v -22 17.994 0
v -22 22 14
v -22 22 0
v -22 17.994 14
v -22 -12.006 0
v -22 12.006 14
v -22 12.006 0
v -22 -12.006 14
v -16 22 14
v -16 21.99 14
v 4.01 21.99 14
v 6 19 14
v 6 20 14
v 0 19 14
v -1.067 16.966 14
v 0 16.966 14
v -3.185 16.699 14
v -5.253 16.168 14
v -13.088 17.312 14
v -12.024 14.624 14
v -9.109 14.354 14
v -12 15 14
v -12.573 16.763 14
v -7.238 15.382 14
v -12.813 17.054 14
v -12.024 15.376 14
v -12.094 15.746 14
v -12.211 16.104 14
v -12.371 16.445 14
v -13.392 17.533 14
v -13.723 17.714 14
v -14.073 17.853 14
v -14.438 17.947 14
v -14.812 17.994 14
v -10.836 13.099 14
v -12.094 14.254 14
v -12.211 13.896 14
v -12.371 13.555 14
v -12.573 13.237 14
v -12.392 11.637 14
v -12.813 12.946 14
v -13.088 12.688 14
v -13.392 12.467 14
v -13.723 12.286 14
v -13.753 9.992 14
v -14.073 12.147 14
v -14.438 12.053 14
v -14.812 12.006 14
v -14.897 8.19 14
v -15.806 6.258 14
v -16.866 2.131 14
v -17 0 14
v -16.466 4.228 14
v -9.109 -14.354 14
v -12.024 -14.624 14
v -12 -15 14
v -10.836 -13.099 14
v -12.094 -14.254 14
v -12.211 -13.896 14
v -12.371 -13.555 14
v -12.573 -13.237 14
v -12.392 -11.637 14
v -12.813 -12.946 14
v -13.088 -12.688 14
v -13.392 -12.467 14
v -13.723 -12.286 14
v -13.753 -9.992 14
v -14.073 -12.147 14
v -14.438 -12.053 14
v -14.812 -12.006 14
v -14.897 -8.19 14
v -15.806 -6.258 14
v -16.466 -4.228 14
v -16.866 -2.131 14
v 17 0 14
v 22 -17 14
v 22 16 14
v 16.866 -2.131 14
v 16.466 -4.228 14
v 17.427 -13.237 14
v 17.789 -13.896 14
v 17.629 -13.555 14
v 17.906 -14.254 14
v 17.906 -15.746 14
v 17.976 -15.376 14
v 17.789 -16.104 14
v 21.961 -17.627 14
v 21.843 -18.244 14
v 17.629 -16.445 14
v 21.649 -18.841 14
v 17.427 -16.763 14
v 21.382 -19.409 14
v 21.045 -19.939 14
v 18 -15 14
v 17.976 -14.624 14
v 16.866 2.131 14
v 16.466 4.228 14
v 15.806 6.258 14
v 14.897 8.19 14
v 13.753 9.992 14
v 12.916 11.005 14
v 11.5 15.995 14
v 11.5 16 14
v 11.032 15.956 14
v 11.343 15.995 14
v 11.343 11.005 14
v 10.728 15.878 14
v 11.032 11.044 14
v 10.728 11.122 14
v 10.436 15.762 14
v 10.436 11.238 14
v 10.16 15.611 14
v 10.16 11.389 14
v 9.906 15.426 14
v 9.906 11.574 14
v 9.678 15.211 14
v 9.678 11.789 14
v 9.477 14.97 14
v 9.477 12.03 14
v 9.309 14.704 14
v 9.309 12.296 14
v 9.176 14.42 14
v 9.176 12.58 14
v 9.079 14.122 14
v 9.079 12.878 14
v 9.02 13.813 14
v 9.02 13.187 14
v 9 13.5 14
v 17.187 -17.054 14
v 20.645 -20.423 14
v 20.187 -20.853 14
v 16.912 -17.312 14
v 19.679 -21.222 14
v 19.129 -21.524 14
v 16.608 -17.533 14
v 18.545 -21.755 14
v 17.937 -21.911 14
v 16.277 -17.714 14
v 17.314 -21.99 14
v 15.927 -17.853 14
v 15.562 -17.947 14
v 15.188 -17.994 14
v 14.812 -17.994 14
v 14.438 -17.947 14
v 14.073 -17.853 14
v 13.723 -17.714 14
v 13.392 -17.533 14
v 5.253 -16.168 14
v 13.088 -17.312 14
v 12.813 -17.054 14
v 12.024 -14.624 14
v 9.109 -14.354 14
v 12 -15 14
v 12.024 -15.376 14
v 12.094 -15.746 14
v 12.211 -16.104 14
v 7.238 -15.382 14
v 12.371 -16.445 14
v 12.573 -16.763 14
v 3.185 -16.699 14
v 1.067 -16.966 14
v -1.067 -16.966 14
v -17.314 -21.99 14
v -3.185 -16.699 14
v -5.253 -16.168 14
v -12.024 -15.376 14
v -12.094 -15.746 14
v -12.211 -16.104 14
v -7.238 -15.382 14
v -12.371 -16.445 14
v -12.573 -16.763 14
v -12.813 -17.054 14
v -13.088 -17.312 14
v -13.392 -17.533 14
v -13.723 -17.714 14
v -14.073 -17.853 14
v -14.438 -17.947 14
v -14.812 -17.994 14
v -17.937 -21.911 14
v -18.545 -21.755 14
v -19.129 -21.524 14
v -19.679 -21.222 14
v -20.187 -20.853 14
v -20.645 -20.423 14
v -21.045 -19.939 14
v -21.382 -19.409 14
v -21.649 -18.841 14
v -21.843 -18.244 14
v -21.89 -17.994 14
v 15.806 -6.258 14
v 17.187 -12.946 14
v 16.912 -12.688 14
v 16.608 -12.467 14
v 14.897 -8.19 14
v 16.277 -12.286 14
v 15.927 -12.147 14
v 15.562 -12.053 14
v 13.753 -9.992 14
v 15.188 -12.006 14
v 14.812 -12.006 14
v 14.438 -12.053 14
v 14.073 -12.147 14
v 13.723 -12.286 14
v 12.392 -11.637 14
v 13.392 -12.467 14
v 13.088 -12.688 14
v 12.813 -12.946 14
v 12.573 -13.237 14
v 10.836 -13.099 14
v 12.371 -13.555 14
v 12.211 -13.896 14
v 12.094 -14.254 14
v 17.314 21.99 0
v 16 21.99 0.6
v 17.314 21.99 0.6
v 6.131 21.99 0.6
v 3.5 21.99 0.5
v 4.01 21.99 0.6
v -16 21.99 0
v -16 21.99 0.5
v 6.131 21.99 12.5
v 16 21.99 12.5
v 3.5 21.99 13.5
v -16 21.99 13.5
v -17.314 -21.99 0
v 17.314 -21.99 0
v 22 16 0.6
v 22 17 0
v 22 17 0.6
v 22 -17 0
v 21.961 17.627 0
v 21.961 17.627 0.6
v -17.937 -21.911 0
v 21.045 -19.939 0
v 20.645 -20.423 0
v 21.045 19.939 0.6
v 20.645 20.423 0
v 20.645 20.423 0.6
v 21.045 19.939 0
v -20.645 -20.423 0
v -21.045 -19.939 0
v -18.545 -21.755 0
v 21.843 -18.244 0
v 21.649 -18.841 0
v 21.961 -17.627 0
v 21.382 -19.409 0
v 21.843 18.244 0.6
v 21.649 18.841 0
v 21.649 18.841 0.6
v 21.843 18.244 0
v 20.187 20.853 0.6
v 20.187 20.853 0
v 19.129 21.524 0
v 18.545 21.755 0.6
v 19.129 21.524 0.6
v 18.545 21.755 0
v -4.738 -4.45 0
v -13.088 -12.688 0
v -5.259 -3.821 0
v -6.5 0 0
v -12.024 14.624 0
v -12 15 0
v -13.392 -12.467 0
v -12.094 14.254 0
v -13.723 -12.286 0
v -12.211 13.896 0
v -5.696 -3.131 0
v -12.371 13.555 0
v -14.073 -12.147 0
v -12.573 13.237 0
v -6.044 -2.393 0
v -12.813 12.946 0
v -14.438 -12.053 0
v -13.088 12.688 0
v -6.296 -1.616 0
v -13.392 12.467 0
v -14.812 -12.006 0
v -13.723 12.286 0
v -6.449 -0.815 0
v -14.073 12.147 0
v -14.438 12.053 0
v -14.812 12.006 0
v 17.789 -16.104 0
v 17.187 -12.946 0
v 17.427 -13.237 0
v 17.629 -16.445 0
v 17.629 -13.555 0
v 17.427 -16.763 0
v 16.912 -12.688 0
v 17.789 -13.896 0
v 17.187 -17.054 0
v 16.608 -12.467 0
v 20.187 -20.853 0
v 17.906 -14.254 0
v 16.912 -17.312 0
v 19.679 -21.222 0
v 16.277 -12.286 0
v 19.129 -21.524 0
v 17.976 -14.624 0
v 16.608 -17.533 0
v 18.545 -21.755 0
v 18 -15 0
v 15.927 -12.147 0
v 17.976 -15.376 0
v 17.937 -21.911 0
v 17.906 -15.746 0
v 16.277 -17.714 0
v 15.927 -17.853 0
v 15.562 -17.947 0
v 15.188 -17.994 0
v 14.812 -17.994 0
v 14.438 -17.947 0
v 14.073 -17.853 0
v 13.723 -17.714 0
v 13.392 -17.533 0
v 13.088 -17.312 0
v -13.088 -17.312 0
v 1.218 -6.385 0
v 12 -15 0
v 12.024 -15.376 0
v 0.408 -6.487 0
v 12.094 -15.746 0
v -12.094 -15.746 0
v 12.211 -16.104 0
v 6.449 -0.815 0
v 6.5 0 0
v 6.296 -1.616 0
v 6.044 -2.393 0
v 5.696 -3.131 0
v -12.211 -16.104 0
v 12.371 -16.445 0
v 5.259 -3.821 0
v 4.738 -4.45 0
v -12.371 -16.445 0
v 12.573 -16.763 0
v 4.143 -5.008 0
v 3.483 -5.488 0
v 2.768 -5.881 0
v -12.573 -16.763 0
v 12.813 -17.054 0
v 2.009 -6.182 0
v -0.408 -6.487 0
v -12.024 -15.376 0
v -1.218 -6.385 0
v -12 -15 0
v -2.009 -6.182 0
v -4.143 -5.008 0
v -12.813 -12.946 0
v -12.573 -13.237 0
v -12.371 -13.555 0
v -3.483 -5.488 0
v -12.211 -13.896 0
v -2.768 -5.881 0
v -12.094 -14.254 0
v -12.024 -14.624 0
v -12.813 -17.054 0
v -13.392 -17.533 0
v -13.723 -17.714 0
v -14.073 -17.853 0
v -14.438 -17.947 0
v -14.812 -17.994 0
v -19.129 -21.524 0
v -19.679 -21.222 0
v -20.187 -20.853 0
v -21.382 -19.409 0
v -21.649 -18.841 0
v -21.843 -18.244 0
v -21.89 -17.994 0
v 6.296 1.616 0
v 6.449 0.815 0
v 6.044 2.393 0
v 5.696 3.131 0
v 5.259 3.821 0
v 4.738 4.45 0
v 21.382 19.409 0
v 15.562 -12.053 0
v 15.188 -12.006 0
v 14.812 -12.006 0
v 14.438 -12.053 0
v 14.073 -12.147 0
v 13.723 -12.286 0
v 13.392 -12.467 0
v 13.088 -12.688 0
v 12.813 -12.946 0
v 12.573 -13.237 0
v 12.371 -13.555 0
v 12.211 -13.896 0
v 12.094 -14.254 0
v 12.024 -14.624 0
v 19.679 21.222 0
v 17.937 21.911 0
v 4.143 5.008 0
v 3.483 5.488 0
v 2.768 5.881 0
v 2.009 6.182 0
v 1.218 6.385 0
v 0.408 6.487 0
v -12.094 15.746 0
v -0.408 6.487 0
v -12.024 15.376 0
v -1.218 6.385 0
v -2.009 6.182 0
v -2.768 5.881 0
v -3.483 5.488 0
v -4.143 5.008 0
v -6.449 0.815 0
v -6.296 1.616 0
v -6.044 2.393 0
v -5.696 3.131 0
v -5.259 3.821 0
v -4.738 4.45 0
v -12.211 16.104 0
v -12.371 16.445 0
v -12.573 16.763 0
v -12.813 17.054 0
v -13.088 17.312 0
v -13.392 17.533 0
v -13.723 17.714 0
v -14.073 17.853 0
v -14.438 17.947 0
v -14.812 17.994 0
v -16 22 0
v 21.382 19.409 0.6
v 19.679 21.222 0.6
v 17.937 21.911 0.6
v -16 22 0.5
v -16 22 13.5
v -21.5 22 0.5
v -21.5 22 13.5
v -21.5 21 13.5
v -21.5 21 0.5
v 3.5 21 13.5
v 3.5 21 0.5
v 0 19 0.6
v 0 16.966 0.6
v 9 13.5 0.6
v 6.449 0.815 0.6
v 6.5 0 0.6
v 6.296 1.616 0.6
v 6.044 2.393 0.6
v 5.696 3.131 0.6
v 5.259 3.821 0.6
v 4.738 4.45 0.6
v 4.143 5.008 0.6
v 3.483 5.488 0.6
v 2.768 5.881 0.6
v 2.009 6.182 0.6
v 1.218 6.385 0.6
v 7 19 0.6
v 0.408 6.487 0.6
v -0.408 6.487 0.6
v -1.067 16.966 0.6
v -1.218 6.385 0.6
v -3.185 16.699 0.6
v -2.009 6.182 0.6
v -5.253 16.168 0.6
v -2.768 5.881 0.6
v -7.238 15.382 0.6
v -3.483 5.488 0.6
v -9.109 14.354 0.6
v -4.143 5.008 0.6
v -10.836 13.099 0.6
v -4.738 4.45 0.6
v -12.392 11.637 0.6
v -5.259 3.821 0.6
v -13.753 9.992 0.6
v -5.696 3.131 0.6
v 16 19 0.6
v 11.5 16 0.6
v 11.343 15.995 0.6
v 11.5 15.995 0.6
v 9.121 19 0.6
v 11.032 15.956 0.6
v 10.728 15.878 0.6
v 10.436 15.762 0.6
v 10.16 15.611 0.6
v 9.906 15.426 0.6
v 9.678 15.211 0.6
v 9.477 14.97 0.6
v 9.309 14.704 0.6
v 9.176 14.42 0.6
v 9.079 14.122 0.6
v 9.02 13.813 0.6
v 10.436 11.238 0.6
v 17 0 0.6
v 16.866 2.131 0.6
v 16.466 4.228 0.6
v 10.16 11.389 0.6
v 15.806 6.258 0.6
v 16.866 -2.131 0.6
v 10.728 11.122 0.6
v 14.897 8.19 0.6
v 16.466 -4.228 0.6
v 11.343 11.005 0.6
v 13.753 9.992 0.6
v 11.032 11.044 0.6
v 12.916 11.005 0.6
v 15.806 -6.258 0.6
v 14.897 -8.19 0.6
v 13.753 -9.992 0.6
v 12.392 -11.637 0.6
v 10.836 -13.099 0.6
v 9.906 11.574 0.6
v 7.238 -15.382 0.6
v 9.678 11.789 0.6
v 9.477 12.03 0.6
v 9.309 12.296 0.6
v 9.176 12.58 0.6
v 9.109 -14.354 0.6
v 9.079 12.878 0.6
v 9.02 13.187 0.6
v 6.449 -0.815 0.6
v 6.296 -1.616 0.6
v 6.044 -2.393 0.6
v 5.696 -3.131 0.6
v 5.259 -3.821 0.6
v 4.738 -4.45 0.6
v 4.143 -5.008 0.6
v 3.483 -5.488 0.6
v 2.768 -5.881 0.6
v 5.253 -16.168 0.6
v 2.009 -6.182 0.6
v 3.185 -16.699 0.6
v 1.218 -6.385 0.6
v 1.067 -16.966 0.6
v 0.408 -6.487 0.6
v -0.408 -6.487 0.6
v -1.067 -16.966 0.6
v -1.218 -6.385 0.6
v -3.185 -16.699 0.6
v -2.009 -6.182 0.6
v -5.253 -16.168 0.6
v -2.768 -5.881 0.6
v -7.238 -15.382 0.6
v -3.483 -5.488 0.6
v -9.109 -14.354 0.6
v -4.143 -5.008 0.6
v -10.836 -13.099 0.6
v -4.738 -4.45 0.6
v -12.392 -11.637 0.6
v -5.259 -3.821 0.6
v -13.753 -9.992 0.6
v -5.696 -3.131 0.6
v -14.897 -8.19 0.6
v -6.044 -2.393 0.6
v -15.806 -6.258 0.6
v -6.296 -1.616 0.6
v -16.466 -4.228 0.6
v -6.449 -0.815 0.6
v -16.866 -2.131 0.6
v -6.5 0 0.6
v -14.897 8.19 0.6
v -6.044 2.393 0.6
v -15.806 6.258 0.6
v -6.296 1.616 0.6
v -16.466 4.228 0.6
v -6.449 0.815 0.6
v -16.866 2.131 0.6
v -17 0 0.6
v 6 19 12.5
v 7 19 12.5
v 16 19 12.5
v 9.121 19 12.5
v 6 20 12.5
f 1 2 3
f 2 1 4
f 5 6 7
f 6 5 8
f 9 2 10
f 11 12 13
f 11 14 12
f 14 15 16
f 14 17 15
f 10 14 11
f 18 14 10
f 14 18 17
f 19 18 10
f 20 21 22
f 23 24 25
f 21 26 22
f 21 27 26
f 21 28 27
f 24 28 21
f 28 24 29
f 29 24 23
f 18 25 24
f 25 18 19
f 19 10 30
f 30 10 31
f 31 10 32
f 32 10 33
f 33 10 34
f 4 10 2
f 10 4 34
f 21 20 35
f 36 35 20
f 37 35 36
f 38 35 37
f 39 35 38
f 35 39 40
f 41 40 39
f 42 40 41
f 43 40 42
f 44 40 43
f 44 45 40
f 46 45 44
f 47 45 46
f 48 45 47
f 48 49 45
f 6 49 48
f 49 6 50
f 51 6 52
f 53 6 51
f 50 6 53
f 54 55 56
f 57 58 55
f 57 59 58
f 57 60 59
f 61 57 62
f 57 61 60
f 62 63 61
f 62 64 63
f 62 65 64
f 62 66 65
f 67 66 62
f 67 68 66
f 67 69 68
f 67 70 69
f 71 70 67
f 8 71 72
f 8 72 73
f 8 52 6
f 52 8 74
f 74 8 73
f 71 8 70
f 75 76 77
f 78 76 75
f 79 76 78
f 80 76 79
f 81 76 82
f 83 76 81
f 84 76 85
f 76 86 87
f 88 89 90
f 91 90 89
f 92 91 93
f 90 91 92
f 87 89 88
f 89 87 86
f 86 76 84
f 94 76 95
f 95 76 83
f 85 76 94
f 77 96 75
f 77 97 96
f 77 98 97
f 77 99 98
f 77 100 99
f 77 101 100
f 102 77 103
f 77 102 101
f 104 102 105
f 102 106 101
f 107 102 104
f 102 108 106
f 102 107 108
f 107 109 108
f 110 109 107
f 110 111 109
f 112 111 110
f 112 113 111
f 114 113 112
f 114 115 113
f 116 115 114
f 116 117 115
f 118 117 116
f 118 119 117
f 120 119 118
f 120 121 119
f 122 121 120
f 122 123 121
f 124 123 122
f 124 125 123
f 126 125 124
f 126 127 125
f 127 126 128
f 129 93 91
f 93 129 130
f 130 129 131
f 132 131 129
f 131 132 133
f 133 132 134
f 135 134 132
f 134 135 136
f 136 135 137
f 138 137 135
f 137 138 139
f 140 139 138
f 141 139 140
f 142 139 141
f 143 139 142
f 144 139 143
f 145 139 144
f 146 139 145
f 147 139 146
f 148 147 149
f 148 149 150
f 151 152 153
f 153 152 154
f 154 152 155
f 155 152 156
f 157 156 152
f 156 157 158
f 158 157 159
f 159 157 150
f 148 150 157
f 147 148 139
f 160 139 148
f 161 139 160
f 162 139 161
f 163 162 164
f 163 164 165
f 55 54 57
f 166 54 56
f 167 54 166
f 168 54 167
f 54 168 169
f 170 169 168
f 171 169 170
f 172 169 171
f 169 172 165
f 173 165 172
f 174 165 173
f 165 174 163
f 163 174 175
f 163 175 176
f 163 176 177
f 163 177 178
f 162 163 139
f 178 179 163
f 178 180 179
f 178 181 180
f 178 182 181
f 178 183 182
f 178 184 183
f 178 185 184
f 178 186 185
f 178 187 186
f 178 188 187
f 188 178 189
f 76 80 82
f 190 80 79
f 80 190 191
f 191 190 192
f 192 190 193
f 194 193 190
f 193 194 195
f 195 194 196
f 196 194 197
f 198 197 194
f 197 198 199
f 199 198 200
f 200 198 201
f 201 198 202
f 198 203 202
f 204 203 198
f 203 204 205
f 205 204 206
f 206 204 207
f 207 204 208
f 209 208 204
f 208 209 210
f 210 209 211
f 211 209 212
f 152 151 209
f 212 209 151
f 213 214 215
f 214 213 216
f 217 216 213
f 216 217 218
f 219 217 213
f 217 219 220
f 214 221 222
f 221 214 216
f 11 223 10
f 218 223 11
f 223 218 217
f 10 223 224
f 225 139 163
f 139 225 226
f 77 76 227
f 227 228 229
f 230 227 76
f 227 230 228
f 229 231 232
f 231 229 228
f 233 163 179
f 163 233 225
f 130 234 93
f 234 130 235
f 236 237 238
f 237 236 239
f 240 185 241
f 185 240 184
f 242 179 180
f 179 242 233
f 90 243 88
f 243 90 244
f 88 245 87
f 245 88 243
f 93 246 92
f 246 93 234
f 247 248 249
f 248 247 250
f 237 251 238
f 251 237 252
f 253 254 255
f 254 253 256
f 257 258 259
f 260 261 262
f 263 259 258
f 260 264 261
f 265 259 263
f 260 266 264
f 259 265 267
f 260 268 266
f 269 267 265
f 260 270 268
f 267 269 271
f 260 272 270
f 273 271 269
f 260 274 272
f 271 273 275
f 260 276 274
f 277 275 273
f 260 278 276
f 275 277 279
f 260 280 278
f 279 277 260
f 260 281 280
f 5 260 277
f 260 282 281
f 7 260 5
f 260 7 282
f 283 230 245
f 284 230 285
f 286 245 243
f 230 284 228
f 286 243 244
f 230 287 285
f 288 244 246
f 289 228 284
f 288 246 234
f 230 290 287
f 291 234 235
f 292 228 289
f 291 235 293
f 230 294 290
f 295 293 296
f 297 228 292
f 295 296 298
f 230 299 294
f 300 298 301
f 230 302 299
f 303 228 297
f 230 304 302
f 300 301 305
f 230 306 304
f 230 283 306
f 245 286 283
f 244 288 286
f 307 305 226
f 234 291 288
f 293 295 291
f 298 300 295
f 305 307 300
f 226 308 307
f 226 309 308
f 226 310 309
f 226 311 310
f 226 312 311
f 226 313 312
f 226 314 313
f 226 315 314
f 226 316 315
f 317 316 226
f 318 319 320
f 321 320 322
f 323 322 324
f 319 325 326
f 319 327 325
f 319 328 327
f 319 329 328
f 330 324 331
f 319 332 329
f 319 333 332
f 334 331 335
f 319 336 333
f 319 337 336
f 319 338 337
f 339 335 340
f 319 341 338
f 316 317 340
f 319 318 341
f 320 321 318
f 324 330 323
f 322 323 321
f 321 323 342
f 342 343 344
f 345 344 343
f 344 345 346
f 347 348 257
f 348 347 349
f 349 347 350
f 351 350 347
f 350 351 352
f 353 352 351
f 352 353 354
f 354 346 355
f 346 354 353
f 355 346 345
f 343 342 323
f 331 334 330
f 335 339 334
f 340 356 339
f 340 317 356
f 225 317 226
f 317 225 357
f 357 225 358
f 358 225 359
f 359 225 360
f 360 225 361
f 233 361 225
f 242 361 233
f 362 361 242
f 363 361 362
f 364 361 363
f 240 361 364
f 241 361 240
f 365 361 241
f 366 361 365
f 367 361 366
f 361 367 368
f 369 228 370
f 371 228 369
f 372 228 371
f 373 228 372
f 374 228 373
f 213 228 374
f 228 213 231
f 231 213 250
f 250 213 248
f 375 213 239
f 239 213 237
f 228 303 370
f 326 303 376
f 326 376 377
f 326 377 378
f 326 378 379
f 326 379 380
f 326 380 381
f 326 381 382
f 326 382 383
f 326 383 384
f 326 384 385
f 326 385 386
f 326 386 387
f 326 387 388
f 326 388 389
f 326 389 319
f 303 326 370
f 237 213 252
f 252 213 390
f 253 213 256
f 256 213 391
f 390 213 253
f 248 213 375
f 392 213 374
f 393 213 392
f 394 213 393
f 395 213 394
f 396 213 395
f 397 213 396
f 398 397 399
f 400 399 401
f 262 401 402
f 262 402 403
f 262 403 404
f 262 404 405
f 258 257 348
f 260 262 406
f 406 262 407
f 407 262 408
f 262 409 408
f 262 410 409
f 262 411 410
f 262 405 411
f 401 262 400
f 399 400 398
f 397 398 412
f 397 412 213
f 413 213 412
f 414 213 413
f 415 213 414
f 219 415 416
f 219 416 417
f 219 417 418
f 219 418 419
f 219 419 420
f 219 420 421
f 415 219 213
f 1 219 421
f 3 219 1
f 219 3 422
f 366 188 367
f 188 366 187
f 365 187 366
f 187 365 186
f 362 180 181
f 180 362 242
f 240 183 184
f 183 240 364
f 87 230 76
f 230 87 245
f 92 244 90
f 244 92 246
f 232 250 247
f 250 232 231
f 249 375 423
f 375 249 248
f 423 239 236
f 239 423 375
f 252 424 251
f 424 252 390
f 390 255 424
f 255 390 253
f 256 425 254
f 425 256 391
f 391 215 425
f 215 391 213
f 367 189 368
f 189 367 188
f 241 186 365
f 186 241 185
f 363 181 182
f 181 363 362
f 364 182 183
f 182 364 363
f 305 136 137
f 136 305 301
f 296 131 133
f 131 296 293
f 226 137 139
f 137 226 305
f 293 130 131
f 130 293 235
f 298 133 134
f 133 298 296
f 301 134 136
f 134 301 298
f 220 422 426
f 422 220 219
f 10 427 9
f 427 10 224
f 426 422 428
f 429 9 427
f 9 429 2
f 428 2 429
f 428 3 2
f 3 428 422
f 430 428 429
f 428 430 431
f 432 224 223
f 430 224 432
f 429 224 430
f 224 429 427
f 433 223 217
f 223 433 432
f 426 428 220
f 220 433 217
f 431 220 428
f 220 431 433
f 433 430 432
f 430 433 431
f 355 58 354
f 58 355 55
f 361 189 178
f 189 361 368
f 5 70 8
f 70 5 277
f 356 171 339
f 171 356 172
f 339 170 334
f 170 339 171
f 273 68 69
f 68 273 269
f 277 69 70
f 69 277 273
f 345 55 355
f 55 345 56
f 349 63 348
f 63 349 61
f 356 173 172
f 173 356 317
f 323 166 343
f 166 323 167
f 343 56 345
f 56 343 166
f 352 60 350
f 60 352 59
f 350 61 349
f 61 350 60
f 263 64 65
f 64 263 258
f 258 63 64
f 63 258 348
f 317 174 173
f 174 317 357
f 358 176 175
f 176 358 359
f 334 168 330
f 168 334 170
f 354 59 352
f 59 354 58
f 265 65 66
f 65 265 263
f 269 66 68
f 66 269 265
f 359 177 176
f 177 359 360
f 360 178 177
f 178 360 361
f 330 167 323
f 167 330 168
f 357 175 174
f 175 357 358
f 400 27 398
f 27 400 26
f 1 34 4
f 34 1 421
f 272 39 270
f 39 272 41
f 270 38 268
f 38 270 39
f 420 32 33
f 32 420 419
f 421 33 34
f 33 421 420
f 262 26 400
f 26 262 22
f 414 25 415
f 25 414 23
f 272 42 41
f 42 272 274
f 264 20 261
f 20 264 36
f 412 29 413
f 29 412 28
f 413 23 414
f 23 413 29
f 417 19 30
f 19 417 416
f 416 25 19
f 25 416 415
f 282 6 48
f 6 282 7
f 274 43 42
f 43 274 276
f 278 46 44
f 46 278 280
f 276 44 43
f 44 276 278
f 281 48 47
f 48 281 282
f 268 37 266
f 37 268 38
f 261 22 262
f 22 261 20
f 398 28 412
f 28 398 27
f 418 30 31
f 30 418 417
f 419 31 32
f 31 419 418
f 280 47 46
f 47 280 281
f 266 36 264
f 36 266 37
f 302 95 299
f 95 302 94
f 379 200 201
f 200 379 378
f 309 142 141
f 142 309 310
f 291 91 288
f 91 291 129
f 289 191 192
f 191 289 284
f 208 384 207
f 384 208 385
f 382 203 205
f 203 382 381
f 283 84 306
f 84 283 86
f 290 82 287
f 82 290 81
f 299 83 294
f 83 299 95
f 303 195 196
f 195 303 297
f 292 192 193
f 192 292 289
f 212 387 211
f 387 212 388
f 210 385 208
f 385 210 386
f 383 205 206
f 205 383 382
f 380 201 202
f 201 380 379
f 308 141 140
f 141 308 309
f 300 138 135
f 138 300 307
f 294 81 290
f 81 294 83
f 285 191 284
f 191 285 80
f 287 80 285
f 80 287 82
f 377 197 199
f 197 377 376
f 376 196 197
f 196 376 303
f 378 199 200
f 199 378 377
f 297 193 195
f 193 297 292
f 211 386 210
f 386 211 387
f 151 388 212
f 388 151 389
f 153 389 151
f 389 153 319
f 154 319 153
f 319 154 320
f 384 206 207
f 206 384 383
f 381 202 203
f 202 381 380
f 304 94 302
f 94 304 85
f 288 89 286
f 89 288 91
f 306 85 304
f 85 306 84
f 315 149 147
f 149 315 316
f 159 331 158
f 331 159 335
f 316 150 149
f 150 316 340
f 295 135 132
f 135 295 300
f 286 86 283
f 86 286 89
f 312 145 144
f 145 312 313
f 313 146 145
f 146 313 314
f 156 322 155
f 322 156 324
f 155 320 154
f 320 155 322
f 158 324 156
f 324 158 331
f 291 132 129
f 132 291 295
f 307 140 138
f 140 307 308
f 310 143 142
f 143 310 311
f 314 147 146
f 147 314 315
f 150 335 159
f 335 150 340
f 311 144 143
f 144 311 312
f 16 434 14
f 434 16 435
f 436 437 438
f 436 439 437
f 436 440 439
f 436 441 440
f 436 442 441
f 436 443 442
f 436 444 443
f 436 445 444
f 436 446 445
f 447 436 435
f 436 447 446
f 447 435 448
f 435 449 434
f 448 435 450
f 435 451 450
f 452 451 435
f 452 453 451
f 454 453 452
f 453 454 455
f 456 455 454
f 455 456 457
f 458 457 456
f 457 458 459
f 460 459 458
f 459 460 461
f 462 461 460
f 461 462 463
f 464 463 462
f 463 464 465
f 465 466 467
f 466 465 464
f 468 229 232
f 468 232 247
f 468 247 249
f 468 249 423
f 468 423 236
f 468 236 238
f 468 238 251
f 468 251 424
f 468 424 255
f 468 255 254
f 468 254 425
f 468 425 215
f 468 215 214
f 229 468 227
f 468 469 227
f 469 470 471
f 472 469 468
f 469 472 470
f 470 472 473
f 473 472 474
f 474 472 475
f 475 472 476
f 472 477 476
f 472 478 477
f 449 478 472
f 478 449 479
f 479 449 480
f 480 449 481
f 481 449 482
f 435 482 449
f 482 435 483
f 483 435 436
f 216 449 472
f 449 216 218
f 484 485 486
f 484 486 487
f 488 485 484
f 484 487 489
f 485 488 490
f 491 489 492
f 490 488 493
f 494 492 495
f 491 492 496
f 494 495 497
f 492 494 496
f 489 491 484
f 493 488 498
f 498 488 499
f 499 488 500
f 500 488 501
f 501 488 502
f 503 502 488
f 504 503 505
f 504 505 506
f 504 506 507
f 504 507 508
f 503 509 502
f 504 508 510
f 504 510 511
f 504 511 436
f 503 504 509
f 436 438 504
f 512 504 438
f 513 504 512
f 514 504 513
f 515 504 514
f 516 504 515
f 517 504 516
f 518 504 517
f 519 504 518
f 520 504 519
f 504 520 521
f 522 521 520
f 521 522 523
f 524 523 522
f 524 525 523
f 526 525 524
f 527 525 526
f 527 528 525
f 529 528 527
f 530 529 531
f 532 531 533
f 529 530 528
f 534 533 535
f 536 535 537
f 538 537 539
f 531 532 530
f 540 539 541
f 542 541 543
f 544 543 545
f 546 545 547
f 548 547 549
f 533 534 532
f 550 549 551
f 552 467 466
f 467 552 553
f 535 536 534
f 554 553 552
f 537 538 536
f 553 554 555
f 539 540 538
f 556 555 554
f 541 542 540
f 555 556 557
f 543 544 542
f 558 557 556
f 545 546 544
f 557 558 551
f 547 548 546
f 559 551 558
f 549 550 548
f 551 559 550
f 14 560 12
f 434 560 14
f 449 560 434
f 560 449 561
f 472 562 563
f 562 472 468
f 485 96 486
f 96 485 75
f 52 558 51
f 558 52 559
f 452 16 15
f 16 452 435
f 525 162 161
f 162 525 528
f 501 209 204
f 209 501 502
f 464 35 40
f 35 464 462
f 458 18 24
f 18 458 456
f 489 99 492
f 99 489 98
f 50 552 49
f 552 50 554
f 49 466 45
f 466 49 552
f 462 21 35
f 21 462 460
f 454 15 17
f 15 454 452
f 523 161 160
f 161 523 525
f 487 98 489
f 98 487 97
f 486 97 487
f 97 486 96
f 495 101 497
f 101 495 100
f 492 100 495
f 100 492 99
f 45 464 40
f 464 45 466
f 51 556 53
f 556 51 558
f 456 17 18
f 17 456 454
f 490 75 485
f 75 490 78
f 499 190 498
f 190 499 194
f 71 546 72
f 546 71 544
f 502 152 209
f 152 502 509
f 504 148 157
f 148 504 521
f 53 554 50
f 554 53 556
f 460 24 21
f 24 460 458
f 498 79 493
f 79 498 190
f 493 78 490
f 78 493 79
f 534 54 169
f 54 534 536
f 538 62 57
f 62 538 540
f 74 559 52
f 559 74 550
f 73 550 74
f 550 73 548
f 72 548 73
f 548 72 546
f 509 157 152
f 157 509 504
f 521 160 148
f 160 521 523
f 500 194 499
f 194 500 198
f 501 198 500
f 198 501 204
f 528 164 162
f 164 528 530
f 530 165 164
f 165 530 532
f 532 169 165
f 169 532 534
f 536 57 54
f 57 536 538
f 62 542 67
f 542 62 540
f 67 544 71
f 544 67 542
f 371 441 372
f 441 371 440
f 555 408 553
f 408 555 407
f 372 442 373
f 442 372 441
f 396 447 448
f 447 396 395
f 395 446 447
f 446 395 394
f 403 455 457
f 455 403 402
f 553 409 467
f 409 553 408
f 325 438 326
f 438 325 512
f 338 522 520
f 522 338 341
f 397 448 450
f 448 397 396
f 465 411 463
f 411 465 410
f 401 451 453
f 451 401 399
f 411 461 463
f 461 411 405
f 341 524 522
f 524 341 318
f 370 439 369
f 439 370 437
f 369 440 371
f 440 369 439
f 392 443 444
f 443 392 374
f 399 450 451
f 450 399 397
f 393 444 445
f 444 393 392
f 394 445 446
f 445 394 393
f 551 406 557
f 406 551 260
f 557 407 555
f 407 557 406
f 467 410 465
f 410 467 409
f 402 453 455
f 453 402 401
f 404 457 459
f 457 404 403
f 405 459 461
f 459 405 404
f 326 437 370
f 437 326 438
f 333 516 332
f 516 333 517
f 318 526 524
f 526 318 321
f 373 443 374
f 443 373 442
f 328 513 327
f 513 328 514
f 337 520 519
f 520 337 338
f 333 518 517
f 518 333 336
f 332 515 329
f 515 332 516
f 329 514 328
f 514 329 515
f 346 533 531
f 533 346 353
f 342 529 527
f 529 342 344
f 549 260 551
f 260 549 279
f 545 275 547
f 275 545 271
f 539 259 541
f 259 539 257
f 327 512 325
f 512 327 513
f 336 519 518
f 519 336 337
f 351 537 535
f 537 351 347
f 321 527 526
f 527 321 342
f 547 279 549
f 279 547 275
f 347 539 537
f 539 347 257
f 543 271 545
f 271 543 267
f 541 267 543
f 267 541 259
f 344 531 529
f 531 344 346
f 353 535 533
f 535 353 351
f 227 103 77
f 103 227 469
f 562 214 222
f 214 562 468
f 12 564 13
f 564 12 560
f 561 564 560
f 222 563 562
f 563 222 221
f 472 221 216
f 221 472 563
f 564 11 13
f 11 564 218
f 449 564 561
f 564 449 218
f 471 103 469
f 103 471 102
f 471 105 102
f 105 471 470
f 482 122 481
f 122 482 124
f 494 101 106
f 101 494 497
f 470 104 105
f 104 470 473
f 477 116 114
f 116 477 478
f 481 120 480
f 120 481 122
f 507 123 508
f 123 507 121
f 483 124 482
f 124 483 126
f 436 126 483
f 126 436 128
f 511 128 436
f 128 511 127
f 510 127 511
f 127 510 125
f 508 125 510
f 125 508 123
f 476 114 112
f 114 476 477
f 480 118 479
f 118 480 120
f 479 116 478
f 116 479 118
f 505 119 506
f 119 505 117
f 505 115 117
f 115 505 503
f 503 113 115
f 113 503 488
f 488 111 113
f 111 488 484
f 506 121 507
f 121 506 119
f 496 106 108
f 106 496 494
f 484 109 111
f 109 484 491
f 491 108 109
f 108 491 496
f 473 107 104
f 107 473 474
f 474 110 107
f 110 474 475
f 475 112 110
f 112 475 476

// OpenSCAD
$fn = 50;


union() {
	difference() {
		union() {
			translate(v = [0, 0, 0]) {
				rotate(a = [0, 0, 0]) {
					hull() {
						translate(v = [-17.0000000000, 17.0000000000, 0]) {
							rotate(a = [0, 0, 0]) {
								translate(v = [0, 0, 0]) {
									rotate(a = [0, 0, 0]) {
										cylinder(h = 14, r = 5);
									}
								}
							}
						}
						translate(v = [17.0000000000, 17.0000000000, 0]) {
							rotate(a = [0, 0, 0]) {
								translate(v = [0, 0, 0]) {
									rotate(a = [0, 0, 0]) {
										cylinder(h = 14, r = 5);
									}
								}
							}
						}
						translate(v = [-17.0000000000, -17.0000000000, 0]) {
							rotate(a = [0, 0, 0]) {
								translate(v = [0, 0, 0]) {
									rotate(a = [0, 0, 0]) {
										cylinder(h = 14, r = 5);
									}
								}
							}
						}
						translate(v = [17.0000000000, -17.0000000000, 0]) {
							rotate(a = [0, 0, 0]) {
								translate(v = [0, 0, 0]) {
									rotate(a = [0, 0, 0]) {
										cylinder(h = 14, r = 5);
									}
								}
							}
						}
					}
				}
			}
			translate(v = [-22.0000000000, 16.0000000000, 0]) {
				rotate(a = [0, 0, 0]) {
					cube(size = [6, 6, 14]);
				}
			}
		}
		union() {
			#translate(v = [-21.5000000000, 21.0000000000, 0.5000000000]) {
				rotate(a = [0, 0, 0]) {
					cube(size = [25, 1, 13.0000000000]);
				}
			}
			translate(v = [-22.5000000000, -15.0000000000, -125]) {
				rotate(a = [0, 0, 0]) {
					hull() {
						translate(v = [7.5000000000, 0, 0]) {
							rotate(a = [0, 0, 0]) {
								translate(v = [0, 0, 0]) {
									rotate(a = [0, 0, 0]) {
										cylinder(h = 250, r = 3.0000000000);
									}
								}
							}
						}
						translate(v = [-7.5000000000, 0, 0]) {
							rotate(a = [0, 0, 0]) {
								translate(v = [0, 0, 0]) {
									rotate(a = [0, 0, 0]) {
										cylinder(h = 250, r = 3.0000000000);
									}
								}
							}
						}
					}
				}
			}
			translate(v = [-22.5000000000, 15.0000000000, -125]) {
				rotate(a = [0, 0, 0]) {
					hull() {
						translate(v = [7.5000000000, 0, 0]) {
							rotate(a = [0, 0, 0]) {
								translate(v = [0, 0, 0]) {
									rotate(a = [0, 0, 0]) {
										cylinder(h = 250, r = 3.0000000000);
									}
								}
							}
						}
						translate(v = [-7.5000000000, 0, 0]) {
							rotate(a = [0, 0, 0]) {
								translate(v = [0, 0, 0]) {
									rotate(a = [0, 0, 0]) {
										cylinder(h = 250, r = 3.0000000000);
									}
								}
							}
						}
					}
				}
			}
			translate(v = [15.0000000000, -15.0000000000, -125.0000000000]) {
				rotate(a = [0, 0, 0]) {
					cylinder(h = 250, r = 3.0000000000);
				}
			}
			translate(v = [0.0000000000, 11.0000000000, 0.6000000000]) {
				rotate(a = [0, 0, 0]) {
					cube(size = [11, 8, 16.4000000000]);
				}
			}
			translate(v = [0, 0, 0.6000000000]) {
				rotate(a = [0, 0, 0]) {
					cylinder(h = 16.4000000000, r = 17.0000000000);
				}
			}
			translate(v = [0, 0, -7.0000000000]) {
				rotate(a = [0, 0, 0]) {
					cylinder(h = 14, r = 6.5000000000);
				}
			}
			translate(v = [0.0000000000, 16.0000000000, 0.6000000000]) {
				rotate(a = [0, 0, 0]) {
					cube(size = [22.0000000000, 3, 16.4000000000]);
				}
			}
			translate(v = [16.0000000000, 16.0000000000, 0.6000000000]) {
				rotate(a = [0, 0, 0]) {
					cube(size = [6, 6, 16.4000000000]);
				}
			}
			translate(v = [6.0000000000, 16.0000000000, 12.5000000000]) {
				rotate(a = [0, 0, 0]) {
					cube(size = [16, 6, 1.5000000000]);
				}
			}
			translate(v = [3.2500000000, 22.7500000000, 0.6000000000]) {
				rotate(a = [0, 0, -45]) {
					cube(size = [7.5000000000, 1.5000000000, 16.4000000000]);
				}
			}
			translate(v = [2.5000000000, 11.0000000000, 0.6000000000]) {
				rotate(a = [0, 0, 0]) {
					cube(size = [9.0000000000, 5, 13.4000000000]);
				}
			}
		}
	}
	union() {
		translate(v = [14, 13.5000000000, 0]) {
			rotate(a = [0, 0, 0]) {
				hull() {
					translate(v = [2.5000000000, 0, 0]) {
						rotate(a = [0, 0, 0]) {
							#translate(v = [0, 0, 0]) {
								rotate(a = [0, 0, 0]) {
									cylinder(h = 14, r = 2.5000000000);
								}
							}
						}
					}
					translate(v = [-2.5000000000, 0, 0]) {
						rotate(a = [0, 0, 0]) {
							#translate(v = [0, 0, 0]) {
								rotate(a = [0, 0, 0]) {
									cylinder(h = 14, r = 2.5000000000);
								}
							}
						}
					}
				}
			}
		}
	}
}
